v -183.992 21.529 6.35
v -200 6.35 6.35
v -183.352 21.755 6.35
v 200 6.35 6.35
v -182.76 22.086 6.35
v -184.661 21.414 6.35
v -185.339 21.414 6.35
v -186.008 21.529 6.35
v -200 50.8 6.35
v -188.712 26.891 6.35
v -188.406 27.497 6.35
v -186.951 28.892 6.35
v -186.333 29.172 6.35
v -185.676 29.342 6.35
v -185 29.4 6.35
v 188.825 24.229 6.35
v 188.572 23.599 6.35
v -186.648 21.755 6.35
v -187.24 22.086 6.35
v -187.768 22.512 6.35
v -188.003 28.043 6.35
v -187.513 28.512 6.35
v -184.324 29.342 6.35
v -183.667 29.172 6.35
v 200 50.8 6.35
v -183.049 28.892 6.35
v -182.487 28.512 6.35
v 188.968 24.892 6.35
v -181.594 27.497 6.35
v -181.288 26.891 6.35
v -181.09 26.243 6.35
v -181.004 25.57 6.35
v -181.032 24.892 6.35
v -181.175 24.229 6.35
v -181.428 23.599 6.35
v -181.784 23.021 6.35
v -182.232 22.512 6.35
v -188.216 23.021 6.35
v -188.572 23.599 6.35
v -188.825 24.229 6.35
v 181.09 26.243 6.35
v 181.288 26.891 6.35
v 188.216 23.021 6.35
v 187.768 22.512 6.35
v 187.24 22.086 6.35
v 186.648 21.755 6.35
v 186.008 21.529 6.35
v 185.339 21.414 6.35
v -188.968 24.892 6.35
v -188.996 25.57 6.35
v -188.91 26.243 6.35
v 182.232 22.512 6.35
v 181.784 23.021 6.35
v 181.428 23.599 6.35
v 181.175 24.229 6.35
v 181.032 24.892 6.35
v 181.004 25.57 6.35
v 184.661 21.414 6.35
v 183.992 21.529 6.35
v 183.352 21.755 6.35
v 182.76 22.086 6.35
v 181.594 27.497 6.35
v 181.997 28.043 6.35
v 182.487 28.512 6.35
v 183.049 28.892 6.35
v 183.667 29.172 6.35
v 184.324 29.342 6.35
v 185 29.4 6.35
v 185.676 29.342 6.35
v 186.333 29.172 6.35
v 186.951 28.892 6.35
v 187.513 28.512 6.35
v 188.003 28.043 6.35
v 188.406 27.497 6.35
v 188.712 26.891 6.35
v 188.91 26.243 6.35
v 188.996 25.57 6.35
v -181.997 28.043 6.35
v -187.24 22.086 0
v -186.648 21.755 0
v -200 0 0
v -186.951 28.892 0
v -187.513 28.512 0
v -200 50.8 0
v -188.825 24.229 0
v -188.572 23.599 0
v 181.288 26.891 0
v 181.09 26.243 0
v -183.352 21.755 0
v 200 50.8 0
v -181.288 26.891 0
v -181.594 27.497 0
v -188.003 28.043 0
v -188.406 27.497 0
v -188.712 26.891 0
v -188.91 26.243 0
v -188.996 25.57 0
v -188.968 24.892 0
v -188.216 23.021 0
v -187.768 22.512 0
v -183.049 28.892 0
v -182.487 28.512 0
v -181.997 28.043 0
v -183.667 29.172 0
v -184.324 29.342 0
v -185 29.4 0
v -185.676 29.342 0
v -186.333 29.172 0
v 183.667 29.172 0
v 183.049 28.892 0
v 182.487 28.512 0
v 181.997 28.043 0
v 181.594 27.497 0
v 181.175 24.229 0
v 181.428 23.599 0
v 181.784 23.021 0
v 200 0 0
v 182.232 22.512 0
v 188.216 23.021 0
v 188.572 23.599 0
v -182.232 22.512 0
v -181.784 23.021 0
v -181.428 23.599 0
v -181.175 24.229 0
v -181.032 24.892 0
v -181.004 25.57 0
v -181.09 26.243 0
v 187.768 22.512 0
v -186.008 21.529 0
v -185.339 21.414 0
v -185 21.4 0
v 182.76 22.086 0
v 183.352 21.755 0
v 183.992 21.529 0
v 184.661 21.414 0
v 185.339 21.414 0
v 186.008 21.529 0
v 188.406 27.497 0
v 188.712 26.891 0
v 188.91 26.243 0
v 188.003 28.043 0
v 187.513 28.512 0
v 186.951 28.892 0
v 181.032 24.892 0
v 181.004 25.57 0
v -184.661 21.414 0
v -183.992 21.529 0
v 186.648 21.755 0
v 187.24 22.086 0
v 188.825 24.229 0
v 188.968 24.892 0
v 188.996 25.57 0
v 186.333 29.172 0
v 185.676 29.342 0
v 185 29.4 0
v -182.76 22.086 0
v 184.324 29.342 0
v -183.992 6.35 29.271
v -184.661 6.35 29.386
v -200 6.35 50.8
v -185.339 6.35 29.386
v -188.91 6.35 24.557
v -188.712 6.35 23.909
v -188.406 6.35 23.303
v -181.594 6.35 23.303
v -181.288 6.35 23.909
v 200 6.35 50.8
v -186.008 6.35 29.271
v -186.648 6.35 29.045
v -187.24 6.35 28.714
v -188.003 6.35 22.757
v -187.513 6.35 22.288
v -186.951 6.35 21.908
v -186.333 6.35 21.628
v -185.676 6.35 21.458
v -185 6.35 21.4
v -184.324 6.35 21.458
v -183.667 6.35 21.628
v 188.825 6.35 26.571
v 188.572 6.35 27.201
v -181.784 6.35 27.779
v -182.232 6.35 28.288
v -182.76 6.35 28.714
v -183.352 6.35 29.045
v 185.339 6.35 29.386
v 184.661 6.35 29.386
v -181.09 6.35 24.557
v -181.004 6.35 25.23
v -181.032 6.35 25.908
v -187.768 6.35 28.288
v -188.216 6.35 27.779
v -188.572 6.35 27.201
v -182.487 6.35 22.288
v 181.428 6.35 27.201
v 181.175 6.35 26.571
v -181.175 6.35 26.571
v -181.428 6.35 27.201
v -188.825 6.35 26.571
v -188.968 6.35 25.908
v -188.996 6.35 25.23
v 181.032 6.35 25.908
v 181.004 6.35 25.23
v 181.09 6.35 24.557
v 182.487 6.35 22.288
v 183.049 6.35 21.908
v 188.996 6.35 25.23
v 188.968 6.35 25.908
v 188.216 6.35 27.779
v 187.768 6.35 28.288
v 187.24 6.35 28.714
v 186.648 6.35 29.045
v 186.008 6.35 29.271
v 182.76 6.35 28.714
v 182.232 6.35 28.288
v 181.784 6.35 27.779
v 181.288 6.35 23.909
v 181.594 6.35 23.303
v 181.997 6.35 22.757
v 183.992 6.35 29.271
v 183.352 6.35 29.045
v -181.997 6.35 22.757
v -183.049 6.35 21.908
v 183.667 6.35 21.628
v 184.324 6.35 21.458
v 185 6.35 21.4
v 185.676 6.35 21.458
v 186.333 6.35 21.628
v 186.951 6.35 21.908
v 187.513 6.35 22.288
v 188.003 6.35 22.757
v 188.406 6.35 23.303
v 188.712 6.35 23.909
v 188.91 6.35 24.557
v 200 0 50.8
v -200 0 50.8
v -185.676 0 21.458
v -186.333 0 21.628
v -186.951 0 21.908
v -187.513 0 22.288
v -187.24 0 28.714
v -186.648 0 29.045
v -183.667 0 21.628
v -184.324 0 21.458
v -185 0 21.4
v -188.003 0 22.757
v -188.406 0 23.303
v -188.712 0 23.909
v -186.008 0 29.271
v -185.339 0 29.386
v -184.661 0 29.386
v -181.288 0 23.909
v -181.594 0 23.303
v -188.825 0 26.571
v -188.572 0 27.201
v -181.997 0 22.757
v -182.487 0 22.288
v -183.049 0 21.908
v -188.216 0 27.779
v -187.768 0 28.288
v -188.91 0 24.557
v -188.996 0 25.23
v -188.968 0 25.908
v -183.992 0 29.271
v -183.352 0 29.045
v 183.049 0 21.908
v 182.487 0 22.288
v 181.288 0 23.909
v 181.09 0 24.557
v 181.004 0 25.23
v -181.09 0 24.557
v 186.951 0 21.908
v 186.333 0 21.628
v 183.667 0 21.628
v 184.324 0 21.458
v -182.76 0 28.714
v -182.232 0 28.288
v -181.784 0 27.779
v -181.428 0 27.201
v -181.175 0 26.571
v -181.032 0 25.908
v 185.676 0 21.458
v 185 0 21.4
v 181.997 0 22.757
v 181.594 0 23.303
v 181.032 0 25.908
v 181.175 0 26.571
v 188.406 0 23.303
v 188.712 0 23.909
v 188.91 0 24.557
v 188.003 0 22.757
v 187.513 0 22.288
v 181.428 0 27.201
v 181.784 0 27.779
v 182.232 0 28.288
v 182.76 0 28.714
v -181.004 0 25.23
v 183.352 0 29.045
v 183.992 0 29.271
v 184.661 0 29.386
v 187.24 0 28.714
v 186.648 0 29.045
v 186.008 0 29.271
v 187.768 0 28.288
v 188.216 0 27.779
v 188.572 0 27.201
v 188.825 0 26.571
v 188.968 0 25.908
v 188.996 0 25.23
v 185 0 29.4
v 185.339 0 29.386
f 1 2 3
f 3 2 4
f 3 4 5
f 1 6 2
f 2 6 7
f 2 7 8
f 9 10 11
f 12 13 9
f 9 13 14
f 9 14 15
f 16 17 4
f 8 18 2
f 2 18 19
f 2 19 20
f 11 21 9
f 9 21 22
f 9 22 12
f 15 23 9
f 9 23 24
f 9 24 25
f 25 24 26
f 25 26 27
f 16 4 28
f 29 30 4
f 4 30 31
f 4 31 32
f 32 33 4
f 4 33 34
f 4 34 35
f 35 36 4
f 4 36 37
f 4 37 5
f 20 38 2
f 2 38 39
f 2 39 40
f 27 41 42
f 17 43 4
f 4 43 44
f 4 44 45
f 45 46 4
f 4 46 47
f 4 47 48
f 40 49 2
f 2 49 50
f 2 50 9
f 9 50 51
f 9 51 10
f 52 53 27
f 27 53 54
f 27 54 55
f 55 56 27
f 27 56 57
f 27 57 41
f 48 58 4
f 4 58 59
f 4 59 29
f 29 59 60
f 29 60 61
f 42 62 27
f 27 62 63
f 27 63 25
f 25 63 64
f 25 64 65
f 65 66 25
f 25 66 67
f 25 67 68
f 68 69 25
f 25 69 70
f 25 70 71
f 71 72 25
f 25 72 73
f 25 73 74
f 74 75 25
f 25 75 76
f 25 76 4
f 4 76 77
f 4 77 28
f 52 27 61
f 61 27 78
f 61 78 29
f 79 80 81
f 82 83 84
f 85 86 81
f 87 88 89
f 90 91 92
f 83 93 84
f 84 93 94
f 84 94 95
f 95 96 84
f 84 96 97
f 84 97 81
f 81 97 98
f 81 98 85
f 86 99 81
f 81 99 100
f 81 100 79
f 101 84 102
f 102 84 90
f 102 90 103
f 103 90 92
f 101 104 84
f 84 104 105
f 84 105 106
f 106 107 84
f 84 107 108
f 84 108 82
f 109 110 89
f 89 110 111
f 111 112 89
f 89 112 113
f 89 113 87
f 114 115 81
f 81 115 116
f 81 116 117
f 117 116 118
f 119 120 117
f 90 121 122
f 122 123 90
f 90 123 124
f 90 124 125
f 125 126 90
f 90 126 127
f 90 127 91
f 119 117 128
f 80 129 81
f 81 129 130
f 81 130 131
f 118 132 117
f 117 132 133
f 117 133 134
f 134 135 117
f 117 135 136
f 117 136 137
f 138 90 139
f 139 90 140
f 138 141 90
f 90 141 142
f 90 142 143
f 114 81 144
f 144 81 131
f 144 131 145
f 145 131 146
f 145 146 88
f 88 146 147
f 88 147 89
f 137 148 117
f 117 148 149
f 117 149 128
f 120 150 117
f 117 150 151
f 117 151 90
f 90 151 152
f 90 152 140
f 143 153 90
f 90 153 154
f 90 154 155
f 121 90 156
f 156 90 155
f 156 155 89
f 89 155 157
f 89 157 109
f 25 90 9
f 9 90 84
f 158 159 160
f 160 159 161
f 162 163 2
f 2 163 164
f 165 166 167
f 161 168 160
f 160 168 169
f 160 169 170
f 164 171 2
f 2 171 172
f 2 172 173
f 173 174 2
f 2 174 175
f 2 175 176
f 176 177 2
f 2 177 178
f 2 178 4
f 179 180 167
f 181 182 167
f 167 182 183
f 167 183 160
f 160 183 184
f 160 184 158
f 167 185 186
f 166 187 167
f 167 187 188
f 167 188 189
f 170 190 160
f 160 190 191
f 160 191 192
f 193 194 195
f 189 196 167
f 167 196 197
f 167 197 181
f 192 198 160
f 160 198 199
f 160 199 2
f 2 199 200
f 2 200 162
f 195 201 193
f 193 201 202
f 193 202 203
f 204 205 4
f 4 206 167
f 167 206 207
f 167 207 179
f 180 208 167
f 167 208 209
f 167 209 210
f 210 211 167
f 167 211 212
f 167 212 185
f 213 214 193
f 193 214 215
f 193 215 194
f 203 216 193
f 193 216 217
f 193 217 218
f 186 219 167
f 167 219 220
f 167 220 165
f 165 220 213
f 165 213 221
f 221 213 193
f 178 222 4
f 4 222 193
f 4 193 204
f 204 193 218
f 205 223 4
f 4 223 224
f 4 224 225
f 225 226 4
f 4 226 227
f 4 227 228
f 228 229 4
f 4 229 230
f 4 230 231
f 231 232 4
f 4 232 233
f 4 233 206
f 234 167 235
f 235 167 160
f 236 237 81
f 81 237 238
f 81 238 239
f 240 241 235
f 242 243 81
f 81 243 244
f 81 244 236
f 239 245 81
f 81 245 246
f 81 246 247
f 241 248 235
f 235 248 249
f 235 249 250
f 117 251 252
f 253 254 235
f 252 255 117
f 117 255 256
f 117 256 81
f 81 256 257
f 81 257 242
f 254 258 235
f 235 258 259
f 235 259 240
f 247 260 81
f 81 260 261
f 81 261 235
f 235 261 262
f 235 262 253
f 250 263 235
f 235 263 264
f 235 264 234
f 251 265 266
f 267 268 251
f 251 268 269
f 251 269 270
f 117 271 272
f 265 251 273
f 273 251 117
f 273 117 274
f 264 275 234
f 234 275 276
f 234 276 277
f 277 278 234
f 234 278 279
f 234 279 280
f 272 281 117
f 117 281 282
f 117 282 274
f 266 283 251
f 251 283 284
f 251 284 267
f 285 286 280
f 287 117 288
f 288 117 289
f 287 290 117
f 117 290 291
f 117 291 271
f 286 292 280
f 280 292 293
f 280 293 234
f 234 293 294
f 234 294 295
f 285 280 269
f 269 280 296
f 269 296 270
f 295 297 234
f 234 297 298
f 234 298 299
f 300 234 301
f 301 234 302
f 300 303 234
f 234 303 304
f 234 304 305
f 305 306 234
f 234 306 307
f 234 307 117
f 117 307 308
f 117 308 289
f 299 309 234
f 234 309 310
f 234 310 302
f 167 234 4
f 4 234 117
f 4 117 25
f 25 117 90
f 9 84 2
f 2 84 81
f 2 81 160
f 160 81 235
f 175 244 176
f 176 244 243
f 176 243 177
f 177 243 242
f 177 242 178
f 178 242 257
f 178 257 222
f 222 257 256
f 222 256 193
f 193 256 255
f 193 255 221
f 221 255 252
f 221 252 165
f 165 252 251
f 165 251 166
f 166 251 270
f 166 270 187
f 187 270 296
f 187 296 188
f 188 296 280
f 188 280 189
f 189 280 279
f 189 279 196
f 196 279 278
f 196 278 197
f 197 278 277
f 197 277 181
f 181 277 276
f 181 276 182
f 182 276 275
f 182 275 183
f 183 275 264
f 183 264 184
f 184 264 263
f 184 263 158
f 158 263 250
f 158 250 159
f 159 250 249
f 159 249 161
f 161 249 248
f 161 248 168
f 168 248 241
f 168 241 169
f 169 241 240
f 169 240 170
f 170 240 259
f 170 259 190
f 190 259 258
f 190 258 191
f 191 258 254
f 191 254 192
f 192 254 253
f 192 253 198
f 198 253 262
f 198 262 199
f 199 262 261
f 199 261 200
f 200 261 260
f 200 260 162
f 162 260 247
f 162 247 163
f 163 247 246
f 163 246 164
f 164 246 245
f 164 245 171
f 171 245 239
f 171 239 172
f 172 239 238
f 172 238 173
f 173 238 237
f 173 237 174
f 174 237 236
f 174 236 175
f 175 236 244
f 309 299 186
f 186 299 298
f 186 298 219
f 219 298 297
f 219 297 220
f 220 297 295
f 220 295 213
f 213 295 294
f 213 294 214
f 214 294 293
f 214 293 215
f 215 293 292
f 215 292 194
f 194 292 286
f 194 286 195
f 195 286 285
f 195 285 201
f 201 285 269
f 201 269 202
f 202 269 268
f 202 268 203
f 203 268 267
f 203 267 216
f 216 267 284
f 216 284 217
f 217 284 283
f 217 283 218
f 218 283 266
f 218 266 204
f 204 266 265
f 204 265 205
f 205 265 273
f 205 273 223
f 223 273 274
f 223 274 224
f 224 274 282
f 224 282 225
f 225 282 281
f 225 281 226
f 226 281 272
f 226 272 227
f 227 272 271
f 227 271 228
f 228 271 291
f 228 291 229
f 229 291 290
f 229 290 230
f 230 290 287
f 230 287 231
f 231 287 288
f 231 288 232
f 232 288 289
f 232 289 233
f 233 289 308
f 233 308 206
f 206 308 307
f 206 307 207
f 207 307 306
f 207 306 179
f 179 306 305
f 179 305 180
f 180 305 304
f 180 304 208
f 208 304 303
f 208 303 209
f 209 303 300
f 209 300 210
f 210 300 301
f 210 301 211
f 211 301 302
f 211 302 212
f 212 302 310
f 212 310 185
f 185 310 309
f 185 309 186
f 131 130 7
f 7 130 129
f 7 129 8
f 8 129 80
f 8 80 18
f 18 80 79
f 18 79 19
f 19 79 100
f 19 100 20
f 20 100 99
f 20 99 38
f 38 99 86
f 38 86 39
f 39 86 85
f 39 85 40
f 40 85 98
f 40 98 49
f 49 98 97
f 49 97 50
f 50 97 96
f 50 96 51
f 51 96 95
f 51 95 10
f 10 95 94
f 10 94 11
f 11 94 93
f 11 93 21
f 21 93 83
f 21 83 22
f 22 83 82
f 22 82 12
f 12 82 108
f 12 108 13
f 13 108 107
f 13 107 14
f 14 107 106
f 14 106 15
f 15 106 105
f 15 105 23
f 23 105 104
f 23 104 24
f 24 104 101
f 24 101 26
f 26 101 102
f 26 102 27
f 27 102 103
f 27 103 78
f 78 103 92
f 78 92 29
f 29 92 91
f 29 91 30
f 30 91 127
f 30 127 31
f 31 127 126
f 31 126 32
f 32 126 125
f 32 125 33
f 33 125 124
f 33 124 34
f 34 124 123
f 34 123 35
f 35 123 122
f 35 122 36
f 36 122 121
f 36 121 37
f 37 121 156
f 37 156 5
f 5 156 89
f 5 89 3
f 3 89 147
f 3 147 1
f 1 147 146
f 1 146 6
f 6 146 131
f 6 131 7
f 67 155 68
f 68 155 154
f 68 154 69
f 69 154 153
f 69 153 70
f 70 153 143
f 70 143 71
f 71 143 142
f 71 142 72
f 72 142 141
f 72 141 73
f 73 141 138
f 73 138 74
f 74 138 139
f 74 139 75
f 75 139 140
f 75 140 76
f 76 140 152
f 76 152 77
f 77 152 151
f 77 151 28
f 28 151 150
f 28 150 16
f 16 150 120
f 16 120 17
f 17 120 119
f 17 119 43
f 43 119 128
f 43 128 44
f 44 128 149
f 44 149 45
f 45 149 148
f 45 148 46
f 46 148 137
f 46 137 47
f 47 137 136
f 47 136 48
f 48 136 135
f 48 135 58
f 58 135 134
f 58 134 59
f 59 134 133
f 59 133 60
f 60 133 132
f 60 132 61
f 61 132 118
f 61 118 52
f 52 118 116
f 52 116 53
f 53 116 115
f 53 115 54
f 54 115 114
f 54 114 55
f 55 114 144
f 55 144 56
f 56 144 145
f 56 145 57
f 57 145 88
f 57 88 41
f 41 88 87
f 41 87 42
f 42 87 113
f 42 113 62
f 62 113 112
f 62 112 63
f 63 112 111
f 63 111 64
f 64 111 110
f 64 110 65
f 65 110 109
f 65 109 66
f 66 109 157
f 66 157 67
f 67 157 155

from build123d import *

# Parameters (mm, degrees)
BOSS_EXTRUDE1_DEPTH = 200
CUT_EXTRUDE1_REACH  = 214.512
SKETCH2_R           = 4


with BuildPart() as part:
    # Sketch1 → Boss-Extrude1 (new, symmetric)
    with BuildSketch(Plane(origin=(0, 0, 0), x_dir=(0, 0, -1), z_dir=(1, 0, 0))):
        Polygon((0, 50.8), (0, 0), (-50.8, 0), (-50.8, 6.35), (-6.35, 6.35), (-6.35, 50.8), align=None)
    extrude(amount=BOSS_EXTRUDE1_DEPTH, both=True)

    # Sketch2 → Cut-Extrude1 (cut, up to next)
    with BuildSketch(Plane.XZ, mode=Mode.PRIVATE) as cut_extrude1_sk1:
        with Locations(Location((-185, 25.4, 0), (0, 0, 270))):
            Circle(SKETCH2_R)
    cut_extrude1_tool1 = extrude(cut_extrude1_sk1.sketch, amount=-CUT_EXTRUDE1_REACH, mode=Mode.PRIVATE) & part.part
    # Sketch2 → Cut-Extrude1 (cut, up to next)
    with BuildSketch(Plane.XZ, mode=Mode.PRIVATE) as cut_extrude1_sk2:
        with Locations(Location((185, 25.4, 0), (0, 0, 270))):
            Circle(SKETCH2_R)
    cut_extrude1_tool2 = extrude(cut_extrude1_sk2.sketch, amount=-CUT_EXTRUDE1_REACH, mode=Mode.PRIVATE) & part.part
    cut_extrude1_1 = cut_extrude1_tool1.solids().sort_by_distance((-185, 0, 25.4))[0]
    add(cut_extrude1_1, mode=Mode.SUBTRACT)
    cut_extrude1_2 = cut_extrude1_tool2.solids().sort_by_distance((185, 0, 25.4))[0]
    add(cut_extrude1_2, mode=Mode.SUBTRACT)
    cut_extrude1 = cut_extrude1_1 + cut_extrude1_2  # Cut-Extrude1 as one shape, for the pattern or mirror that repeats it

    # Mirror1: Cut-Extrude1 across plane
    add(cut_extrude1.mirror(Plane(origin=(0, 0, 0), x_dir=(0, 0.7071067811865471, 0.7071067811865479), z_dir=(0, -0.7071067811865479, 0.7071067811865471))), mode=Mode.SUBTRACT)


solid = part.part
